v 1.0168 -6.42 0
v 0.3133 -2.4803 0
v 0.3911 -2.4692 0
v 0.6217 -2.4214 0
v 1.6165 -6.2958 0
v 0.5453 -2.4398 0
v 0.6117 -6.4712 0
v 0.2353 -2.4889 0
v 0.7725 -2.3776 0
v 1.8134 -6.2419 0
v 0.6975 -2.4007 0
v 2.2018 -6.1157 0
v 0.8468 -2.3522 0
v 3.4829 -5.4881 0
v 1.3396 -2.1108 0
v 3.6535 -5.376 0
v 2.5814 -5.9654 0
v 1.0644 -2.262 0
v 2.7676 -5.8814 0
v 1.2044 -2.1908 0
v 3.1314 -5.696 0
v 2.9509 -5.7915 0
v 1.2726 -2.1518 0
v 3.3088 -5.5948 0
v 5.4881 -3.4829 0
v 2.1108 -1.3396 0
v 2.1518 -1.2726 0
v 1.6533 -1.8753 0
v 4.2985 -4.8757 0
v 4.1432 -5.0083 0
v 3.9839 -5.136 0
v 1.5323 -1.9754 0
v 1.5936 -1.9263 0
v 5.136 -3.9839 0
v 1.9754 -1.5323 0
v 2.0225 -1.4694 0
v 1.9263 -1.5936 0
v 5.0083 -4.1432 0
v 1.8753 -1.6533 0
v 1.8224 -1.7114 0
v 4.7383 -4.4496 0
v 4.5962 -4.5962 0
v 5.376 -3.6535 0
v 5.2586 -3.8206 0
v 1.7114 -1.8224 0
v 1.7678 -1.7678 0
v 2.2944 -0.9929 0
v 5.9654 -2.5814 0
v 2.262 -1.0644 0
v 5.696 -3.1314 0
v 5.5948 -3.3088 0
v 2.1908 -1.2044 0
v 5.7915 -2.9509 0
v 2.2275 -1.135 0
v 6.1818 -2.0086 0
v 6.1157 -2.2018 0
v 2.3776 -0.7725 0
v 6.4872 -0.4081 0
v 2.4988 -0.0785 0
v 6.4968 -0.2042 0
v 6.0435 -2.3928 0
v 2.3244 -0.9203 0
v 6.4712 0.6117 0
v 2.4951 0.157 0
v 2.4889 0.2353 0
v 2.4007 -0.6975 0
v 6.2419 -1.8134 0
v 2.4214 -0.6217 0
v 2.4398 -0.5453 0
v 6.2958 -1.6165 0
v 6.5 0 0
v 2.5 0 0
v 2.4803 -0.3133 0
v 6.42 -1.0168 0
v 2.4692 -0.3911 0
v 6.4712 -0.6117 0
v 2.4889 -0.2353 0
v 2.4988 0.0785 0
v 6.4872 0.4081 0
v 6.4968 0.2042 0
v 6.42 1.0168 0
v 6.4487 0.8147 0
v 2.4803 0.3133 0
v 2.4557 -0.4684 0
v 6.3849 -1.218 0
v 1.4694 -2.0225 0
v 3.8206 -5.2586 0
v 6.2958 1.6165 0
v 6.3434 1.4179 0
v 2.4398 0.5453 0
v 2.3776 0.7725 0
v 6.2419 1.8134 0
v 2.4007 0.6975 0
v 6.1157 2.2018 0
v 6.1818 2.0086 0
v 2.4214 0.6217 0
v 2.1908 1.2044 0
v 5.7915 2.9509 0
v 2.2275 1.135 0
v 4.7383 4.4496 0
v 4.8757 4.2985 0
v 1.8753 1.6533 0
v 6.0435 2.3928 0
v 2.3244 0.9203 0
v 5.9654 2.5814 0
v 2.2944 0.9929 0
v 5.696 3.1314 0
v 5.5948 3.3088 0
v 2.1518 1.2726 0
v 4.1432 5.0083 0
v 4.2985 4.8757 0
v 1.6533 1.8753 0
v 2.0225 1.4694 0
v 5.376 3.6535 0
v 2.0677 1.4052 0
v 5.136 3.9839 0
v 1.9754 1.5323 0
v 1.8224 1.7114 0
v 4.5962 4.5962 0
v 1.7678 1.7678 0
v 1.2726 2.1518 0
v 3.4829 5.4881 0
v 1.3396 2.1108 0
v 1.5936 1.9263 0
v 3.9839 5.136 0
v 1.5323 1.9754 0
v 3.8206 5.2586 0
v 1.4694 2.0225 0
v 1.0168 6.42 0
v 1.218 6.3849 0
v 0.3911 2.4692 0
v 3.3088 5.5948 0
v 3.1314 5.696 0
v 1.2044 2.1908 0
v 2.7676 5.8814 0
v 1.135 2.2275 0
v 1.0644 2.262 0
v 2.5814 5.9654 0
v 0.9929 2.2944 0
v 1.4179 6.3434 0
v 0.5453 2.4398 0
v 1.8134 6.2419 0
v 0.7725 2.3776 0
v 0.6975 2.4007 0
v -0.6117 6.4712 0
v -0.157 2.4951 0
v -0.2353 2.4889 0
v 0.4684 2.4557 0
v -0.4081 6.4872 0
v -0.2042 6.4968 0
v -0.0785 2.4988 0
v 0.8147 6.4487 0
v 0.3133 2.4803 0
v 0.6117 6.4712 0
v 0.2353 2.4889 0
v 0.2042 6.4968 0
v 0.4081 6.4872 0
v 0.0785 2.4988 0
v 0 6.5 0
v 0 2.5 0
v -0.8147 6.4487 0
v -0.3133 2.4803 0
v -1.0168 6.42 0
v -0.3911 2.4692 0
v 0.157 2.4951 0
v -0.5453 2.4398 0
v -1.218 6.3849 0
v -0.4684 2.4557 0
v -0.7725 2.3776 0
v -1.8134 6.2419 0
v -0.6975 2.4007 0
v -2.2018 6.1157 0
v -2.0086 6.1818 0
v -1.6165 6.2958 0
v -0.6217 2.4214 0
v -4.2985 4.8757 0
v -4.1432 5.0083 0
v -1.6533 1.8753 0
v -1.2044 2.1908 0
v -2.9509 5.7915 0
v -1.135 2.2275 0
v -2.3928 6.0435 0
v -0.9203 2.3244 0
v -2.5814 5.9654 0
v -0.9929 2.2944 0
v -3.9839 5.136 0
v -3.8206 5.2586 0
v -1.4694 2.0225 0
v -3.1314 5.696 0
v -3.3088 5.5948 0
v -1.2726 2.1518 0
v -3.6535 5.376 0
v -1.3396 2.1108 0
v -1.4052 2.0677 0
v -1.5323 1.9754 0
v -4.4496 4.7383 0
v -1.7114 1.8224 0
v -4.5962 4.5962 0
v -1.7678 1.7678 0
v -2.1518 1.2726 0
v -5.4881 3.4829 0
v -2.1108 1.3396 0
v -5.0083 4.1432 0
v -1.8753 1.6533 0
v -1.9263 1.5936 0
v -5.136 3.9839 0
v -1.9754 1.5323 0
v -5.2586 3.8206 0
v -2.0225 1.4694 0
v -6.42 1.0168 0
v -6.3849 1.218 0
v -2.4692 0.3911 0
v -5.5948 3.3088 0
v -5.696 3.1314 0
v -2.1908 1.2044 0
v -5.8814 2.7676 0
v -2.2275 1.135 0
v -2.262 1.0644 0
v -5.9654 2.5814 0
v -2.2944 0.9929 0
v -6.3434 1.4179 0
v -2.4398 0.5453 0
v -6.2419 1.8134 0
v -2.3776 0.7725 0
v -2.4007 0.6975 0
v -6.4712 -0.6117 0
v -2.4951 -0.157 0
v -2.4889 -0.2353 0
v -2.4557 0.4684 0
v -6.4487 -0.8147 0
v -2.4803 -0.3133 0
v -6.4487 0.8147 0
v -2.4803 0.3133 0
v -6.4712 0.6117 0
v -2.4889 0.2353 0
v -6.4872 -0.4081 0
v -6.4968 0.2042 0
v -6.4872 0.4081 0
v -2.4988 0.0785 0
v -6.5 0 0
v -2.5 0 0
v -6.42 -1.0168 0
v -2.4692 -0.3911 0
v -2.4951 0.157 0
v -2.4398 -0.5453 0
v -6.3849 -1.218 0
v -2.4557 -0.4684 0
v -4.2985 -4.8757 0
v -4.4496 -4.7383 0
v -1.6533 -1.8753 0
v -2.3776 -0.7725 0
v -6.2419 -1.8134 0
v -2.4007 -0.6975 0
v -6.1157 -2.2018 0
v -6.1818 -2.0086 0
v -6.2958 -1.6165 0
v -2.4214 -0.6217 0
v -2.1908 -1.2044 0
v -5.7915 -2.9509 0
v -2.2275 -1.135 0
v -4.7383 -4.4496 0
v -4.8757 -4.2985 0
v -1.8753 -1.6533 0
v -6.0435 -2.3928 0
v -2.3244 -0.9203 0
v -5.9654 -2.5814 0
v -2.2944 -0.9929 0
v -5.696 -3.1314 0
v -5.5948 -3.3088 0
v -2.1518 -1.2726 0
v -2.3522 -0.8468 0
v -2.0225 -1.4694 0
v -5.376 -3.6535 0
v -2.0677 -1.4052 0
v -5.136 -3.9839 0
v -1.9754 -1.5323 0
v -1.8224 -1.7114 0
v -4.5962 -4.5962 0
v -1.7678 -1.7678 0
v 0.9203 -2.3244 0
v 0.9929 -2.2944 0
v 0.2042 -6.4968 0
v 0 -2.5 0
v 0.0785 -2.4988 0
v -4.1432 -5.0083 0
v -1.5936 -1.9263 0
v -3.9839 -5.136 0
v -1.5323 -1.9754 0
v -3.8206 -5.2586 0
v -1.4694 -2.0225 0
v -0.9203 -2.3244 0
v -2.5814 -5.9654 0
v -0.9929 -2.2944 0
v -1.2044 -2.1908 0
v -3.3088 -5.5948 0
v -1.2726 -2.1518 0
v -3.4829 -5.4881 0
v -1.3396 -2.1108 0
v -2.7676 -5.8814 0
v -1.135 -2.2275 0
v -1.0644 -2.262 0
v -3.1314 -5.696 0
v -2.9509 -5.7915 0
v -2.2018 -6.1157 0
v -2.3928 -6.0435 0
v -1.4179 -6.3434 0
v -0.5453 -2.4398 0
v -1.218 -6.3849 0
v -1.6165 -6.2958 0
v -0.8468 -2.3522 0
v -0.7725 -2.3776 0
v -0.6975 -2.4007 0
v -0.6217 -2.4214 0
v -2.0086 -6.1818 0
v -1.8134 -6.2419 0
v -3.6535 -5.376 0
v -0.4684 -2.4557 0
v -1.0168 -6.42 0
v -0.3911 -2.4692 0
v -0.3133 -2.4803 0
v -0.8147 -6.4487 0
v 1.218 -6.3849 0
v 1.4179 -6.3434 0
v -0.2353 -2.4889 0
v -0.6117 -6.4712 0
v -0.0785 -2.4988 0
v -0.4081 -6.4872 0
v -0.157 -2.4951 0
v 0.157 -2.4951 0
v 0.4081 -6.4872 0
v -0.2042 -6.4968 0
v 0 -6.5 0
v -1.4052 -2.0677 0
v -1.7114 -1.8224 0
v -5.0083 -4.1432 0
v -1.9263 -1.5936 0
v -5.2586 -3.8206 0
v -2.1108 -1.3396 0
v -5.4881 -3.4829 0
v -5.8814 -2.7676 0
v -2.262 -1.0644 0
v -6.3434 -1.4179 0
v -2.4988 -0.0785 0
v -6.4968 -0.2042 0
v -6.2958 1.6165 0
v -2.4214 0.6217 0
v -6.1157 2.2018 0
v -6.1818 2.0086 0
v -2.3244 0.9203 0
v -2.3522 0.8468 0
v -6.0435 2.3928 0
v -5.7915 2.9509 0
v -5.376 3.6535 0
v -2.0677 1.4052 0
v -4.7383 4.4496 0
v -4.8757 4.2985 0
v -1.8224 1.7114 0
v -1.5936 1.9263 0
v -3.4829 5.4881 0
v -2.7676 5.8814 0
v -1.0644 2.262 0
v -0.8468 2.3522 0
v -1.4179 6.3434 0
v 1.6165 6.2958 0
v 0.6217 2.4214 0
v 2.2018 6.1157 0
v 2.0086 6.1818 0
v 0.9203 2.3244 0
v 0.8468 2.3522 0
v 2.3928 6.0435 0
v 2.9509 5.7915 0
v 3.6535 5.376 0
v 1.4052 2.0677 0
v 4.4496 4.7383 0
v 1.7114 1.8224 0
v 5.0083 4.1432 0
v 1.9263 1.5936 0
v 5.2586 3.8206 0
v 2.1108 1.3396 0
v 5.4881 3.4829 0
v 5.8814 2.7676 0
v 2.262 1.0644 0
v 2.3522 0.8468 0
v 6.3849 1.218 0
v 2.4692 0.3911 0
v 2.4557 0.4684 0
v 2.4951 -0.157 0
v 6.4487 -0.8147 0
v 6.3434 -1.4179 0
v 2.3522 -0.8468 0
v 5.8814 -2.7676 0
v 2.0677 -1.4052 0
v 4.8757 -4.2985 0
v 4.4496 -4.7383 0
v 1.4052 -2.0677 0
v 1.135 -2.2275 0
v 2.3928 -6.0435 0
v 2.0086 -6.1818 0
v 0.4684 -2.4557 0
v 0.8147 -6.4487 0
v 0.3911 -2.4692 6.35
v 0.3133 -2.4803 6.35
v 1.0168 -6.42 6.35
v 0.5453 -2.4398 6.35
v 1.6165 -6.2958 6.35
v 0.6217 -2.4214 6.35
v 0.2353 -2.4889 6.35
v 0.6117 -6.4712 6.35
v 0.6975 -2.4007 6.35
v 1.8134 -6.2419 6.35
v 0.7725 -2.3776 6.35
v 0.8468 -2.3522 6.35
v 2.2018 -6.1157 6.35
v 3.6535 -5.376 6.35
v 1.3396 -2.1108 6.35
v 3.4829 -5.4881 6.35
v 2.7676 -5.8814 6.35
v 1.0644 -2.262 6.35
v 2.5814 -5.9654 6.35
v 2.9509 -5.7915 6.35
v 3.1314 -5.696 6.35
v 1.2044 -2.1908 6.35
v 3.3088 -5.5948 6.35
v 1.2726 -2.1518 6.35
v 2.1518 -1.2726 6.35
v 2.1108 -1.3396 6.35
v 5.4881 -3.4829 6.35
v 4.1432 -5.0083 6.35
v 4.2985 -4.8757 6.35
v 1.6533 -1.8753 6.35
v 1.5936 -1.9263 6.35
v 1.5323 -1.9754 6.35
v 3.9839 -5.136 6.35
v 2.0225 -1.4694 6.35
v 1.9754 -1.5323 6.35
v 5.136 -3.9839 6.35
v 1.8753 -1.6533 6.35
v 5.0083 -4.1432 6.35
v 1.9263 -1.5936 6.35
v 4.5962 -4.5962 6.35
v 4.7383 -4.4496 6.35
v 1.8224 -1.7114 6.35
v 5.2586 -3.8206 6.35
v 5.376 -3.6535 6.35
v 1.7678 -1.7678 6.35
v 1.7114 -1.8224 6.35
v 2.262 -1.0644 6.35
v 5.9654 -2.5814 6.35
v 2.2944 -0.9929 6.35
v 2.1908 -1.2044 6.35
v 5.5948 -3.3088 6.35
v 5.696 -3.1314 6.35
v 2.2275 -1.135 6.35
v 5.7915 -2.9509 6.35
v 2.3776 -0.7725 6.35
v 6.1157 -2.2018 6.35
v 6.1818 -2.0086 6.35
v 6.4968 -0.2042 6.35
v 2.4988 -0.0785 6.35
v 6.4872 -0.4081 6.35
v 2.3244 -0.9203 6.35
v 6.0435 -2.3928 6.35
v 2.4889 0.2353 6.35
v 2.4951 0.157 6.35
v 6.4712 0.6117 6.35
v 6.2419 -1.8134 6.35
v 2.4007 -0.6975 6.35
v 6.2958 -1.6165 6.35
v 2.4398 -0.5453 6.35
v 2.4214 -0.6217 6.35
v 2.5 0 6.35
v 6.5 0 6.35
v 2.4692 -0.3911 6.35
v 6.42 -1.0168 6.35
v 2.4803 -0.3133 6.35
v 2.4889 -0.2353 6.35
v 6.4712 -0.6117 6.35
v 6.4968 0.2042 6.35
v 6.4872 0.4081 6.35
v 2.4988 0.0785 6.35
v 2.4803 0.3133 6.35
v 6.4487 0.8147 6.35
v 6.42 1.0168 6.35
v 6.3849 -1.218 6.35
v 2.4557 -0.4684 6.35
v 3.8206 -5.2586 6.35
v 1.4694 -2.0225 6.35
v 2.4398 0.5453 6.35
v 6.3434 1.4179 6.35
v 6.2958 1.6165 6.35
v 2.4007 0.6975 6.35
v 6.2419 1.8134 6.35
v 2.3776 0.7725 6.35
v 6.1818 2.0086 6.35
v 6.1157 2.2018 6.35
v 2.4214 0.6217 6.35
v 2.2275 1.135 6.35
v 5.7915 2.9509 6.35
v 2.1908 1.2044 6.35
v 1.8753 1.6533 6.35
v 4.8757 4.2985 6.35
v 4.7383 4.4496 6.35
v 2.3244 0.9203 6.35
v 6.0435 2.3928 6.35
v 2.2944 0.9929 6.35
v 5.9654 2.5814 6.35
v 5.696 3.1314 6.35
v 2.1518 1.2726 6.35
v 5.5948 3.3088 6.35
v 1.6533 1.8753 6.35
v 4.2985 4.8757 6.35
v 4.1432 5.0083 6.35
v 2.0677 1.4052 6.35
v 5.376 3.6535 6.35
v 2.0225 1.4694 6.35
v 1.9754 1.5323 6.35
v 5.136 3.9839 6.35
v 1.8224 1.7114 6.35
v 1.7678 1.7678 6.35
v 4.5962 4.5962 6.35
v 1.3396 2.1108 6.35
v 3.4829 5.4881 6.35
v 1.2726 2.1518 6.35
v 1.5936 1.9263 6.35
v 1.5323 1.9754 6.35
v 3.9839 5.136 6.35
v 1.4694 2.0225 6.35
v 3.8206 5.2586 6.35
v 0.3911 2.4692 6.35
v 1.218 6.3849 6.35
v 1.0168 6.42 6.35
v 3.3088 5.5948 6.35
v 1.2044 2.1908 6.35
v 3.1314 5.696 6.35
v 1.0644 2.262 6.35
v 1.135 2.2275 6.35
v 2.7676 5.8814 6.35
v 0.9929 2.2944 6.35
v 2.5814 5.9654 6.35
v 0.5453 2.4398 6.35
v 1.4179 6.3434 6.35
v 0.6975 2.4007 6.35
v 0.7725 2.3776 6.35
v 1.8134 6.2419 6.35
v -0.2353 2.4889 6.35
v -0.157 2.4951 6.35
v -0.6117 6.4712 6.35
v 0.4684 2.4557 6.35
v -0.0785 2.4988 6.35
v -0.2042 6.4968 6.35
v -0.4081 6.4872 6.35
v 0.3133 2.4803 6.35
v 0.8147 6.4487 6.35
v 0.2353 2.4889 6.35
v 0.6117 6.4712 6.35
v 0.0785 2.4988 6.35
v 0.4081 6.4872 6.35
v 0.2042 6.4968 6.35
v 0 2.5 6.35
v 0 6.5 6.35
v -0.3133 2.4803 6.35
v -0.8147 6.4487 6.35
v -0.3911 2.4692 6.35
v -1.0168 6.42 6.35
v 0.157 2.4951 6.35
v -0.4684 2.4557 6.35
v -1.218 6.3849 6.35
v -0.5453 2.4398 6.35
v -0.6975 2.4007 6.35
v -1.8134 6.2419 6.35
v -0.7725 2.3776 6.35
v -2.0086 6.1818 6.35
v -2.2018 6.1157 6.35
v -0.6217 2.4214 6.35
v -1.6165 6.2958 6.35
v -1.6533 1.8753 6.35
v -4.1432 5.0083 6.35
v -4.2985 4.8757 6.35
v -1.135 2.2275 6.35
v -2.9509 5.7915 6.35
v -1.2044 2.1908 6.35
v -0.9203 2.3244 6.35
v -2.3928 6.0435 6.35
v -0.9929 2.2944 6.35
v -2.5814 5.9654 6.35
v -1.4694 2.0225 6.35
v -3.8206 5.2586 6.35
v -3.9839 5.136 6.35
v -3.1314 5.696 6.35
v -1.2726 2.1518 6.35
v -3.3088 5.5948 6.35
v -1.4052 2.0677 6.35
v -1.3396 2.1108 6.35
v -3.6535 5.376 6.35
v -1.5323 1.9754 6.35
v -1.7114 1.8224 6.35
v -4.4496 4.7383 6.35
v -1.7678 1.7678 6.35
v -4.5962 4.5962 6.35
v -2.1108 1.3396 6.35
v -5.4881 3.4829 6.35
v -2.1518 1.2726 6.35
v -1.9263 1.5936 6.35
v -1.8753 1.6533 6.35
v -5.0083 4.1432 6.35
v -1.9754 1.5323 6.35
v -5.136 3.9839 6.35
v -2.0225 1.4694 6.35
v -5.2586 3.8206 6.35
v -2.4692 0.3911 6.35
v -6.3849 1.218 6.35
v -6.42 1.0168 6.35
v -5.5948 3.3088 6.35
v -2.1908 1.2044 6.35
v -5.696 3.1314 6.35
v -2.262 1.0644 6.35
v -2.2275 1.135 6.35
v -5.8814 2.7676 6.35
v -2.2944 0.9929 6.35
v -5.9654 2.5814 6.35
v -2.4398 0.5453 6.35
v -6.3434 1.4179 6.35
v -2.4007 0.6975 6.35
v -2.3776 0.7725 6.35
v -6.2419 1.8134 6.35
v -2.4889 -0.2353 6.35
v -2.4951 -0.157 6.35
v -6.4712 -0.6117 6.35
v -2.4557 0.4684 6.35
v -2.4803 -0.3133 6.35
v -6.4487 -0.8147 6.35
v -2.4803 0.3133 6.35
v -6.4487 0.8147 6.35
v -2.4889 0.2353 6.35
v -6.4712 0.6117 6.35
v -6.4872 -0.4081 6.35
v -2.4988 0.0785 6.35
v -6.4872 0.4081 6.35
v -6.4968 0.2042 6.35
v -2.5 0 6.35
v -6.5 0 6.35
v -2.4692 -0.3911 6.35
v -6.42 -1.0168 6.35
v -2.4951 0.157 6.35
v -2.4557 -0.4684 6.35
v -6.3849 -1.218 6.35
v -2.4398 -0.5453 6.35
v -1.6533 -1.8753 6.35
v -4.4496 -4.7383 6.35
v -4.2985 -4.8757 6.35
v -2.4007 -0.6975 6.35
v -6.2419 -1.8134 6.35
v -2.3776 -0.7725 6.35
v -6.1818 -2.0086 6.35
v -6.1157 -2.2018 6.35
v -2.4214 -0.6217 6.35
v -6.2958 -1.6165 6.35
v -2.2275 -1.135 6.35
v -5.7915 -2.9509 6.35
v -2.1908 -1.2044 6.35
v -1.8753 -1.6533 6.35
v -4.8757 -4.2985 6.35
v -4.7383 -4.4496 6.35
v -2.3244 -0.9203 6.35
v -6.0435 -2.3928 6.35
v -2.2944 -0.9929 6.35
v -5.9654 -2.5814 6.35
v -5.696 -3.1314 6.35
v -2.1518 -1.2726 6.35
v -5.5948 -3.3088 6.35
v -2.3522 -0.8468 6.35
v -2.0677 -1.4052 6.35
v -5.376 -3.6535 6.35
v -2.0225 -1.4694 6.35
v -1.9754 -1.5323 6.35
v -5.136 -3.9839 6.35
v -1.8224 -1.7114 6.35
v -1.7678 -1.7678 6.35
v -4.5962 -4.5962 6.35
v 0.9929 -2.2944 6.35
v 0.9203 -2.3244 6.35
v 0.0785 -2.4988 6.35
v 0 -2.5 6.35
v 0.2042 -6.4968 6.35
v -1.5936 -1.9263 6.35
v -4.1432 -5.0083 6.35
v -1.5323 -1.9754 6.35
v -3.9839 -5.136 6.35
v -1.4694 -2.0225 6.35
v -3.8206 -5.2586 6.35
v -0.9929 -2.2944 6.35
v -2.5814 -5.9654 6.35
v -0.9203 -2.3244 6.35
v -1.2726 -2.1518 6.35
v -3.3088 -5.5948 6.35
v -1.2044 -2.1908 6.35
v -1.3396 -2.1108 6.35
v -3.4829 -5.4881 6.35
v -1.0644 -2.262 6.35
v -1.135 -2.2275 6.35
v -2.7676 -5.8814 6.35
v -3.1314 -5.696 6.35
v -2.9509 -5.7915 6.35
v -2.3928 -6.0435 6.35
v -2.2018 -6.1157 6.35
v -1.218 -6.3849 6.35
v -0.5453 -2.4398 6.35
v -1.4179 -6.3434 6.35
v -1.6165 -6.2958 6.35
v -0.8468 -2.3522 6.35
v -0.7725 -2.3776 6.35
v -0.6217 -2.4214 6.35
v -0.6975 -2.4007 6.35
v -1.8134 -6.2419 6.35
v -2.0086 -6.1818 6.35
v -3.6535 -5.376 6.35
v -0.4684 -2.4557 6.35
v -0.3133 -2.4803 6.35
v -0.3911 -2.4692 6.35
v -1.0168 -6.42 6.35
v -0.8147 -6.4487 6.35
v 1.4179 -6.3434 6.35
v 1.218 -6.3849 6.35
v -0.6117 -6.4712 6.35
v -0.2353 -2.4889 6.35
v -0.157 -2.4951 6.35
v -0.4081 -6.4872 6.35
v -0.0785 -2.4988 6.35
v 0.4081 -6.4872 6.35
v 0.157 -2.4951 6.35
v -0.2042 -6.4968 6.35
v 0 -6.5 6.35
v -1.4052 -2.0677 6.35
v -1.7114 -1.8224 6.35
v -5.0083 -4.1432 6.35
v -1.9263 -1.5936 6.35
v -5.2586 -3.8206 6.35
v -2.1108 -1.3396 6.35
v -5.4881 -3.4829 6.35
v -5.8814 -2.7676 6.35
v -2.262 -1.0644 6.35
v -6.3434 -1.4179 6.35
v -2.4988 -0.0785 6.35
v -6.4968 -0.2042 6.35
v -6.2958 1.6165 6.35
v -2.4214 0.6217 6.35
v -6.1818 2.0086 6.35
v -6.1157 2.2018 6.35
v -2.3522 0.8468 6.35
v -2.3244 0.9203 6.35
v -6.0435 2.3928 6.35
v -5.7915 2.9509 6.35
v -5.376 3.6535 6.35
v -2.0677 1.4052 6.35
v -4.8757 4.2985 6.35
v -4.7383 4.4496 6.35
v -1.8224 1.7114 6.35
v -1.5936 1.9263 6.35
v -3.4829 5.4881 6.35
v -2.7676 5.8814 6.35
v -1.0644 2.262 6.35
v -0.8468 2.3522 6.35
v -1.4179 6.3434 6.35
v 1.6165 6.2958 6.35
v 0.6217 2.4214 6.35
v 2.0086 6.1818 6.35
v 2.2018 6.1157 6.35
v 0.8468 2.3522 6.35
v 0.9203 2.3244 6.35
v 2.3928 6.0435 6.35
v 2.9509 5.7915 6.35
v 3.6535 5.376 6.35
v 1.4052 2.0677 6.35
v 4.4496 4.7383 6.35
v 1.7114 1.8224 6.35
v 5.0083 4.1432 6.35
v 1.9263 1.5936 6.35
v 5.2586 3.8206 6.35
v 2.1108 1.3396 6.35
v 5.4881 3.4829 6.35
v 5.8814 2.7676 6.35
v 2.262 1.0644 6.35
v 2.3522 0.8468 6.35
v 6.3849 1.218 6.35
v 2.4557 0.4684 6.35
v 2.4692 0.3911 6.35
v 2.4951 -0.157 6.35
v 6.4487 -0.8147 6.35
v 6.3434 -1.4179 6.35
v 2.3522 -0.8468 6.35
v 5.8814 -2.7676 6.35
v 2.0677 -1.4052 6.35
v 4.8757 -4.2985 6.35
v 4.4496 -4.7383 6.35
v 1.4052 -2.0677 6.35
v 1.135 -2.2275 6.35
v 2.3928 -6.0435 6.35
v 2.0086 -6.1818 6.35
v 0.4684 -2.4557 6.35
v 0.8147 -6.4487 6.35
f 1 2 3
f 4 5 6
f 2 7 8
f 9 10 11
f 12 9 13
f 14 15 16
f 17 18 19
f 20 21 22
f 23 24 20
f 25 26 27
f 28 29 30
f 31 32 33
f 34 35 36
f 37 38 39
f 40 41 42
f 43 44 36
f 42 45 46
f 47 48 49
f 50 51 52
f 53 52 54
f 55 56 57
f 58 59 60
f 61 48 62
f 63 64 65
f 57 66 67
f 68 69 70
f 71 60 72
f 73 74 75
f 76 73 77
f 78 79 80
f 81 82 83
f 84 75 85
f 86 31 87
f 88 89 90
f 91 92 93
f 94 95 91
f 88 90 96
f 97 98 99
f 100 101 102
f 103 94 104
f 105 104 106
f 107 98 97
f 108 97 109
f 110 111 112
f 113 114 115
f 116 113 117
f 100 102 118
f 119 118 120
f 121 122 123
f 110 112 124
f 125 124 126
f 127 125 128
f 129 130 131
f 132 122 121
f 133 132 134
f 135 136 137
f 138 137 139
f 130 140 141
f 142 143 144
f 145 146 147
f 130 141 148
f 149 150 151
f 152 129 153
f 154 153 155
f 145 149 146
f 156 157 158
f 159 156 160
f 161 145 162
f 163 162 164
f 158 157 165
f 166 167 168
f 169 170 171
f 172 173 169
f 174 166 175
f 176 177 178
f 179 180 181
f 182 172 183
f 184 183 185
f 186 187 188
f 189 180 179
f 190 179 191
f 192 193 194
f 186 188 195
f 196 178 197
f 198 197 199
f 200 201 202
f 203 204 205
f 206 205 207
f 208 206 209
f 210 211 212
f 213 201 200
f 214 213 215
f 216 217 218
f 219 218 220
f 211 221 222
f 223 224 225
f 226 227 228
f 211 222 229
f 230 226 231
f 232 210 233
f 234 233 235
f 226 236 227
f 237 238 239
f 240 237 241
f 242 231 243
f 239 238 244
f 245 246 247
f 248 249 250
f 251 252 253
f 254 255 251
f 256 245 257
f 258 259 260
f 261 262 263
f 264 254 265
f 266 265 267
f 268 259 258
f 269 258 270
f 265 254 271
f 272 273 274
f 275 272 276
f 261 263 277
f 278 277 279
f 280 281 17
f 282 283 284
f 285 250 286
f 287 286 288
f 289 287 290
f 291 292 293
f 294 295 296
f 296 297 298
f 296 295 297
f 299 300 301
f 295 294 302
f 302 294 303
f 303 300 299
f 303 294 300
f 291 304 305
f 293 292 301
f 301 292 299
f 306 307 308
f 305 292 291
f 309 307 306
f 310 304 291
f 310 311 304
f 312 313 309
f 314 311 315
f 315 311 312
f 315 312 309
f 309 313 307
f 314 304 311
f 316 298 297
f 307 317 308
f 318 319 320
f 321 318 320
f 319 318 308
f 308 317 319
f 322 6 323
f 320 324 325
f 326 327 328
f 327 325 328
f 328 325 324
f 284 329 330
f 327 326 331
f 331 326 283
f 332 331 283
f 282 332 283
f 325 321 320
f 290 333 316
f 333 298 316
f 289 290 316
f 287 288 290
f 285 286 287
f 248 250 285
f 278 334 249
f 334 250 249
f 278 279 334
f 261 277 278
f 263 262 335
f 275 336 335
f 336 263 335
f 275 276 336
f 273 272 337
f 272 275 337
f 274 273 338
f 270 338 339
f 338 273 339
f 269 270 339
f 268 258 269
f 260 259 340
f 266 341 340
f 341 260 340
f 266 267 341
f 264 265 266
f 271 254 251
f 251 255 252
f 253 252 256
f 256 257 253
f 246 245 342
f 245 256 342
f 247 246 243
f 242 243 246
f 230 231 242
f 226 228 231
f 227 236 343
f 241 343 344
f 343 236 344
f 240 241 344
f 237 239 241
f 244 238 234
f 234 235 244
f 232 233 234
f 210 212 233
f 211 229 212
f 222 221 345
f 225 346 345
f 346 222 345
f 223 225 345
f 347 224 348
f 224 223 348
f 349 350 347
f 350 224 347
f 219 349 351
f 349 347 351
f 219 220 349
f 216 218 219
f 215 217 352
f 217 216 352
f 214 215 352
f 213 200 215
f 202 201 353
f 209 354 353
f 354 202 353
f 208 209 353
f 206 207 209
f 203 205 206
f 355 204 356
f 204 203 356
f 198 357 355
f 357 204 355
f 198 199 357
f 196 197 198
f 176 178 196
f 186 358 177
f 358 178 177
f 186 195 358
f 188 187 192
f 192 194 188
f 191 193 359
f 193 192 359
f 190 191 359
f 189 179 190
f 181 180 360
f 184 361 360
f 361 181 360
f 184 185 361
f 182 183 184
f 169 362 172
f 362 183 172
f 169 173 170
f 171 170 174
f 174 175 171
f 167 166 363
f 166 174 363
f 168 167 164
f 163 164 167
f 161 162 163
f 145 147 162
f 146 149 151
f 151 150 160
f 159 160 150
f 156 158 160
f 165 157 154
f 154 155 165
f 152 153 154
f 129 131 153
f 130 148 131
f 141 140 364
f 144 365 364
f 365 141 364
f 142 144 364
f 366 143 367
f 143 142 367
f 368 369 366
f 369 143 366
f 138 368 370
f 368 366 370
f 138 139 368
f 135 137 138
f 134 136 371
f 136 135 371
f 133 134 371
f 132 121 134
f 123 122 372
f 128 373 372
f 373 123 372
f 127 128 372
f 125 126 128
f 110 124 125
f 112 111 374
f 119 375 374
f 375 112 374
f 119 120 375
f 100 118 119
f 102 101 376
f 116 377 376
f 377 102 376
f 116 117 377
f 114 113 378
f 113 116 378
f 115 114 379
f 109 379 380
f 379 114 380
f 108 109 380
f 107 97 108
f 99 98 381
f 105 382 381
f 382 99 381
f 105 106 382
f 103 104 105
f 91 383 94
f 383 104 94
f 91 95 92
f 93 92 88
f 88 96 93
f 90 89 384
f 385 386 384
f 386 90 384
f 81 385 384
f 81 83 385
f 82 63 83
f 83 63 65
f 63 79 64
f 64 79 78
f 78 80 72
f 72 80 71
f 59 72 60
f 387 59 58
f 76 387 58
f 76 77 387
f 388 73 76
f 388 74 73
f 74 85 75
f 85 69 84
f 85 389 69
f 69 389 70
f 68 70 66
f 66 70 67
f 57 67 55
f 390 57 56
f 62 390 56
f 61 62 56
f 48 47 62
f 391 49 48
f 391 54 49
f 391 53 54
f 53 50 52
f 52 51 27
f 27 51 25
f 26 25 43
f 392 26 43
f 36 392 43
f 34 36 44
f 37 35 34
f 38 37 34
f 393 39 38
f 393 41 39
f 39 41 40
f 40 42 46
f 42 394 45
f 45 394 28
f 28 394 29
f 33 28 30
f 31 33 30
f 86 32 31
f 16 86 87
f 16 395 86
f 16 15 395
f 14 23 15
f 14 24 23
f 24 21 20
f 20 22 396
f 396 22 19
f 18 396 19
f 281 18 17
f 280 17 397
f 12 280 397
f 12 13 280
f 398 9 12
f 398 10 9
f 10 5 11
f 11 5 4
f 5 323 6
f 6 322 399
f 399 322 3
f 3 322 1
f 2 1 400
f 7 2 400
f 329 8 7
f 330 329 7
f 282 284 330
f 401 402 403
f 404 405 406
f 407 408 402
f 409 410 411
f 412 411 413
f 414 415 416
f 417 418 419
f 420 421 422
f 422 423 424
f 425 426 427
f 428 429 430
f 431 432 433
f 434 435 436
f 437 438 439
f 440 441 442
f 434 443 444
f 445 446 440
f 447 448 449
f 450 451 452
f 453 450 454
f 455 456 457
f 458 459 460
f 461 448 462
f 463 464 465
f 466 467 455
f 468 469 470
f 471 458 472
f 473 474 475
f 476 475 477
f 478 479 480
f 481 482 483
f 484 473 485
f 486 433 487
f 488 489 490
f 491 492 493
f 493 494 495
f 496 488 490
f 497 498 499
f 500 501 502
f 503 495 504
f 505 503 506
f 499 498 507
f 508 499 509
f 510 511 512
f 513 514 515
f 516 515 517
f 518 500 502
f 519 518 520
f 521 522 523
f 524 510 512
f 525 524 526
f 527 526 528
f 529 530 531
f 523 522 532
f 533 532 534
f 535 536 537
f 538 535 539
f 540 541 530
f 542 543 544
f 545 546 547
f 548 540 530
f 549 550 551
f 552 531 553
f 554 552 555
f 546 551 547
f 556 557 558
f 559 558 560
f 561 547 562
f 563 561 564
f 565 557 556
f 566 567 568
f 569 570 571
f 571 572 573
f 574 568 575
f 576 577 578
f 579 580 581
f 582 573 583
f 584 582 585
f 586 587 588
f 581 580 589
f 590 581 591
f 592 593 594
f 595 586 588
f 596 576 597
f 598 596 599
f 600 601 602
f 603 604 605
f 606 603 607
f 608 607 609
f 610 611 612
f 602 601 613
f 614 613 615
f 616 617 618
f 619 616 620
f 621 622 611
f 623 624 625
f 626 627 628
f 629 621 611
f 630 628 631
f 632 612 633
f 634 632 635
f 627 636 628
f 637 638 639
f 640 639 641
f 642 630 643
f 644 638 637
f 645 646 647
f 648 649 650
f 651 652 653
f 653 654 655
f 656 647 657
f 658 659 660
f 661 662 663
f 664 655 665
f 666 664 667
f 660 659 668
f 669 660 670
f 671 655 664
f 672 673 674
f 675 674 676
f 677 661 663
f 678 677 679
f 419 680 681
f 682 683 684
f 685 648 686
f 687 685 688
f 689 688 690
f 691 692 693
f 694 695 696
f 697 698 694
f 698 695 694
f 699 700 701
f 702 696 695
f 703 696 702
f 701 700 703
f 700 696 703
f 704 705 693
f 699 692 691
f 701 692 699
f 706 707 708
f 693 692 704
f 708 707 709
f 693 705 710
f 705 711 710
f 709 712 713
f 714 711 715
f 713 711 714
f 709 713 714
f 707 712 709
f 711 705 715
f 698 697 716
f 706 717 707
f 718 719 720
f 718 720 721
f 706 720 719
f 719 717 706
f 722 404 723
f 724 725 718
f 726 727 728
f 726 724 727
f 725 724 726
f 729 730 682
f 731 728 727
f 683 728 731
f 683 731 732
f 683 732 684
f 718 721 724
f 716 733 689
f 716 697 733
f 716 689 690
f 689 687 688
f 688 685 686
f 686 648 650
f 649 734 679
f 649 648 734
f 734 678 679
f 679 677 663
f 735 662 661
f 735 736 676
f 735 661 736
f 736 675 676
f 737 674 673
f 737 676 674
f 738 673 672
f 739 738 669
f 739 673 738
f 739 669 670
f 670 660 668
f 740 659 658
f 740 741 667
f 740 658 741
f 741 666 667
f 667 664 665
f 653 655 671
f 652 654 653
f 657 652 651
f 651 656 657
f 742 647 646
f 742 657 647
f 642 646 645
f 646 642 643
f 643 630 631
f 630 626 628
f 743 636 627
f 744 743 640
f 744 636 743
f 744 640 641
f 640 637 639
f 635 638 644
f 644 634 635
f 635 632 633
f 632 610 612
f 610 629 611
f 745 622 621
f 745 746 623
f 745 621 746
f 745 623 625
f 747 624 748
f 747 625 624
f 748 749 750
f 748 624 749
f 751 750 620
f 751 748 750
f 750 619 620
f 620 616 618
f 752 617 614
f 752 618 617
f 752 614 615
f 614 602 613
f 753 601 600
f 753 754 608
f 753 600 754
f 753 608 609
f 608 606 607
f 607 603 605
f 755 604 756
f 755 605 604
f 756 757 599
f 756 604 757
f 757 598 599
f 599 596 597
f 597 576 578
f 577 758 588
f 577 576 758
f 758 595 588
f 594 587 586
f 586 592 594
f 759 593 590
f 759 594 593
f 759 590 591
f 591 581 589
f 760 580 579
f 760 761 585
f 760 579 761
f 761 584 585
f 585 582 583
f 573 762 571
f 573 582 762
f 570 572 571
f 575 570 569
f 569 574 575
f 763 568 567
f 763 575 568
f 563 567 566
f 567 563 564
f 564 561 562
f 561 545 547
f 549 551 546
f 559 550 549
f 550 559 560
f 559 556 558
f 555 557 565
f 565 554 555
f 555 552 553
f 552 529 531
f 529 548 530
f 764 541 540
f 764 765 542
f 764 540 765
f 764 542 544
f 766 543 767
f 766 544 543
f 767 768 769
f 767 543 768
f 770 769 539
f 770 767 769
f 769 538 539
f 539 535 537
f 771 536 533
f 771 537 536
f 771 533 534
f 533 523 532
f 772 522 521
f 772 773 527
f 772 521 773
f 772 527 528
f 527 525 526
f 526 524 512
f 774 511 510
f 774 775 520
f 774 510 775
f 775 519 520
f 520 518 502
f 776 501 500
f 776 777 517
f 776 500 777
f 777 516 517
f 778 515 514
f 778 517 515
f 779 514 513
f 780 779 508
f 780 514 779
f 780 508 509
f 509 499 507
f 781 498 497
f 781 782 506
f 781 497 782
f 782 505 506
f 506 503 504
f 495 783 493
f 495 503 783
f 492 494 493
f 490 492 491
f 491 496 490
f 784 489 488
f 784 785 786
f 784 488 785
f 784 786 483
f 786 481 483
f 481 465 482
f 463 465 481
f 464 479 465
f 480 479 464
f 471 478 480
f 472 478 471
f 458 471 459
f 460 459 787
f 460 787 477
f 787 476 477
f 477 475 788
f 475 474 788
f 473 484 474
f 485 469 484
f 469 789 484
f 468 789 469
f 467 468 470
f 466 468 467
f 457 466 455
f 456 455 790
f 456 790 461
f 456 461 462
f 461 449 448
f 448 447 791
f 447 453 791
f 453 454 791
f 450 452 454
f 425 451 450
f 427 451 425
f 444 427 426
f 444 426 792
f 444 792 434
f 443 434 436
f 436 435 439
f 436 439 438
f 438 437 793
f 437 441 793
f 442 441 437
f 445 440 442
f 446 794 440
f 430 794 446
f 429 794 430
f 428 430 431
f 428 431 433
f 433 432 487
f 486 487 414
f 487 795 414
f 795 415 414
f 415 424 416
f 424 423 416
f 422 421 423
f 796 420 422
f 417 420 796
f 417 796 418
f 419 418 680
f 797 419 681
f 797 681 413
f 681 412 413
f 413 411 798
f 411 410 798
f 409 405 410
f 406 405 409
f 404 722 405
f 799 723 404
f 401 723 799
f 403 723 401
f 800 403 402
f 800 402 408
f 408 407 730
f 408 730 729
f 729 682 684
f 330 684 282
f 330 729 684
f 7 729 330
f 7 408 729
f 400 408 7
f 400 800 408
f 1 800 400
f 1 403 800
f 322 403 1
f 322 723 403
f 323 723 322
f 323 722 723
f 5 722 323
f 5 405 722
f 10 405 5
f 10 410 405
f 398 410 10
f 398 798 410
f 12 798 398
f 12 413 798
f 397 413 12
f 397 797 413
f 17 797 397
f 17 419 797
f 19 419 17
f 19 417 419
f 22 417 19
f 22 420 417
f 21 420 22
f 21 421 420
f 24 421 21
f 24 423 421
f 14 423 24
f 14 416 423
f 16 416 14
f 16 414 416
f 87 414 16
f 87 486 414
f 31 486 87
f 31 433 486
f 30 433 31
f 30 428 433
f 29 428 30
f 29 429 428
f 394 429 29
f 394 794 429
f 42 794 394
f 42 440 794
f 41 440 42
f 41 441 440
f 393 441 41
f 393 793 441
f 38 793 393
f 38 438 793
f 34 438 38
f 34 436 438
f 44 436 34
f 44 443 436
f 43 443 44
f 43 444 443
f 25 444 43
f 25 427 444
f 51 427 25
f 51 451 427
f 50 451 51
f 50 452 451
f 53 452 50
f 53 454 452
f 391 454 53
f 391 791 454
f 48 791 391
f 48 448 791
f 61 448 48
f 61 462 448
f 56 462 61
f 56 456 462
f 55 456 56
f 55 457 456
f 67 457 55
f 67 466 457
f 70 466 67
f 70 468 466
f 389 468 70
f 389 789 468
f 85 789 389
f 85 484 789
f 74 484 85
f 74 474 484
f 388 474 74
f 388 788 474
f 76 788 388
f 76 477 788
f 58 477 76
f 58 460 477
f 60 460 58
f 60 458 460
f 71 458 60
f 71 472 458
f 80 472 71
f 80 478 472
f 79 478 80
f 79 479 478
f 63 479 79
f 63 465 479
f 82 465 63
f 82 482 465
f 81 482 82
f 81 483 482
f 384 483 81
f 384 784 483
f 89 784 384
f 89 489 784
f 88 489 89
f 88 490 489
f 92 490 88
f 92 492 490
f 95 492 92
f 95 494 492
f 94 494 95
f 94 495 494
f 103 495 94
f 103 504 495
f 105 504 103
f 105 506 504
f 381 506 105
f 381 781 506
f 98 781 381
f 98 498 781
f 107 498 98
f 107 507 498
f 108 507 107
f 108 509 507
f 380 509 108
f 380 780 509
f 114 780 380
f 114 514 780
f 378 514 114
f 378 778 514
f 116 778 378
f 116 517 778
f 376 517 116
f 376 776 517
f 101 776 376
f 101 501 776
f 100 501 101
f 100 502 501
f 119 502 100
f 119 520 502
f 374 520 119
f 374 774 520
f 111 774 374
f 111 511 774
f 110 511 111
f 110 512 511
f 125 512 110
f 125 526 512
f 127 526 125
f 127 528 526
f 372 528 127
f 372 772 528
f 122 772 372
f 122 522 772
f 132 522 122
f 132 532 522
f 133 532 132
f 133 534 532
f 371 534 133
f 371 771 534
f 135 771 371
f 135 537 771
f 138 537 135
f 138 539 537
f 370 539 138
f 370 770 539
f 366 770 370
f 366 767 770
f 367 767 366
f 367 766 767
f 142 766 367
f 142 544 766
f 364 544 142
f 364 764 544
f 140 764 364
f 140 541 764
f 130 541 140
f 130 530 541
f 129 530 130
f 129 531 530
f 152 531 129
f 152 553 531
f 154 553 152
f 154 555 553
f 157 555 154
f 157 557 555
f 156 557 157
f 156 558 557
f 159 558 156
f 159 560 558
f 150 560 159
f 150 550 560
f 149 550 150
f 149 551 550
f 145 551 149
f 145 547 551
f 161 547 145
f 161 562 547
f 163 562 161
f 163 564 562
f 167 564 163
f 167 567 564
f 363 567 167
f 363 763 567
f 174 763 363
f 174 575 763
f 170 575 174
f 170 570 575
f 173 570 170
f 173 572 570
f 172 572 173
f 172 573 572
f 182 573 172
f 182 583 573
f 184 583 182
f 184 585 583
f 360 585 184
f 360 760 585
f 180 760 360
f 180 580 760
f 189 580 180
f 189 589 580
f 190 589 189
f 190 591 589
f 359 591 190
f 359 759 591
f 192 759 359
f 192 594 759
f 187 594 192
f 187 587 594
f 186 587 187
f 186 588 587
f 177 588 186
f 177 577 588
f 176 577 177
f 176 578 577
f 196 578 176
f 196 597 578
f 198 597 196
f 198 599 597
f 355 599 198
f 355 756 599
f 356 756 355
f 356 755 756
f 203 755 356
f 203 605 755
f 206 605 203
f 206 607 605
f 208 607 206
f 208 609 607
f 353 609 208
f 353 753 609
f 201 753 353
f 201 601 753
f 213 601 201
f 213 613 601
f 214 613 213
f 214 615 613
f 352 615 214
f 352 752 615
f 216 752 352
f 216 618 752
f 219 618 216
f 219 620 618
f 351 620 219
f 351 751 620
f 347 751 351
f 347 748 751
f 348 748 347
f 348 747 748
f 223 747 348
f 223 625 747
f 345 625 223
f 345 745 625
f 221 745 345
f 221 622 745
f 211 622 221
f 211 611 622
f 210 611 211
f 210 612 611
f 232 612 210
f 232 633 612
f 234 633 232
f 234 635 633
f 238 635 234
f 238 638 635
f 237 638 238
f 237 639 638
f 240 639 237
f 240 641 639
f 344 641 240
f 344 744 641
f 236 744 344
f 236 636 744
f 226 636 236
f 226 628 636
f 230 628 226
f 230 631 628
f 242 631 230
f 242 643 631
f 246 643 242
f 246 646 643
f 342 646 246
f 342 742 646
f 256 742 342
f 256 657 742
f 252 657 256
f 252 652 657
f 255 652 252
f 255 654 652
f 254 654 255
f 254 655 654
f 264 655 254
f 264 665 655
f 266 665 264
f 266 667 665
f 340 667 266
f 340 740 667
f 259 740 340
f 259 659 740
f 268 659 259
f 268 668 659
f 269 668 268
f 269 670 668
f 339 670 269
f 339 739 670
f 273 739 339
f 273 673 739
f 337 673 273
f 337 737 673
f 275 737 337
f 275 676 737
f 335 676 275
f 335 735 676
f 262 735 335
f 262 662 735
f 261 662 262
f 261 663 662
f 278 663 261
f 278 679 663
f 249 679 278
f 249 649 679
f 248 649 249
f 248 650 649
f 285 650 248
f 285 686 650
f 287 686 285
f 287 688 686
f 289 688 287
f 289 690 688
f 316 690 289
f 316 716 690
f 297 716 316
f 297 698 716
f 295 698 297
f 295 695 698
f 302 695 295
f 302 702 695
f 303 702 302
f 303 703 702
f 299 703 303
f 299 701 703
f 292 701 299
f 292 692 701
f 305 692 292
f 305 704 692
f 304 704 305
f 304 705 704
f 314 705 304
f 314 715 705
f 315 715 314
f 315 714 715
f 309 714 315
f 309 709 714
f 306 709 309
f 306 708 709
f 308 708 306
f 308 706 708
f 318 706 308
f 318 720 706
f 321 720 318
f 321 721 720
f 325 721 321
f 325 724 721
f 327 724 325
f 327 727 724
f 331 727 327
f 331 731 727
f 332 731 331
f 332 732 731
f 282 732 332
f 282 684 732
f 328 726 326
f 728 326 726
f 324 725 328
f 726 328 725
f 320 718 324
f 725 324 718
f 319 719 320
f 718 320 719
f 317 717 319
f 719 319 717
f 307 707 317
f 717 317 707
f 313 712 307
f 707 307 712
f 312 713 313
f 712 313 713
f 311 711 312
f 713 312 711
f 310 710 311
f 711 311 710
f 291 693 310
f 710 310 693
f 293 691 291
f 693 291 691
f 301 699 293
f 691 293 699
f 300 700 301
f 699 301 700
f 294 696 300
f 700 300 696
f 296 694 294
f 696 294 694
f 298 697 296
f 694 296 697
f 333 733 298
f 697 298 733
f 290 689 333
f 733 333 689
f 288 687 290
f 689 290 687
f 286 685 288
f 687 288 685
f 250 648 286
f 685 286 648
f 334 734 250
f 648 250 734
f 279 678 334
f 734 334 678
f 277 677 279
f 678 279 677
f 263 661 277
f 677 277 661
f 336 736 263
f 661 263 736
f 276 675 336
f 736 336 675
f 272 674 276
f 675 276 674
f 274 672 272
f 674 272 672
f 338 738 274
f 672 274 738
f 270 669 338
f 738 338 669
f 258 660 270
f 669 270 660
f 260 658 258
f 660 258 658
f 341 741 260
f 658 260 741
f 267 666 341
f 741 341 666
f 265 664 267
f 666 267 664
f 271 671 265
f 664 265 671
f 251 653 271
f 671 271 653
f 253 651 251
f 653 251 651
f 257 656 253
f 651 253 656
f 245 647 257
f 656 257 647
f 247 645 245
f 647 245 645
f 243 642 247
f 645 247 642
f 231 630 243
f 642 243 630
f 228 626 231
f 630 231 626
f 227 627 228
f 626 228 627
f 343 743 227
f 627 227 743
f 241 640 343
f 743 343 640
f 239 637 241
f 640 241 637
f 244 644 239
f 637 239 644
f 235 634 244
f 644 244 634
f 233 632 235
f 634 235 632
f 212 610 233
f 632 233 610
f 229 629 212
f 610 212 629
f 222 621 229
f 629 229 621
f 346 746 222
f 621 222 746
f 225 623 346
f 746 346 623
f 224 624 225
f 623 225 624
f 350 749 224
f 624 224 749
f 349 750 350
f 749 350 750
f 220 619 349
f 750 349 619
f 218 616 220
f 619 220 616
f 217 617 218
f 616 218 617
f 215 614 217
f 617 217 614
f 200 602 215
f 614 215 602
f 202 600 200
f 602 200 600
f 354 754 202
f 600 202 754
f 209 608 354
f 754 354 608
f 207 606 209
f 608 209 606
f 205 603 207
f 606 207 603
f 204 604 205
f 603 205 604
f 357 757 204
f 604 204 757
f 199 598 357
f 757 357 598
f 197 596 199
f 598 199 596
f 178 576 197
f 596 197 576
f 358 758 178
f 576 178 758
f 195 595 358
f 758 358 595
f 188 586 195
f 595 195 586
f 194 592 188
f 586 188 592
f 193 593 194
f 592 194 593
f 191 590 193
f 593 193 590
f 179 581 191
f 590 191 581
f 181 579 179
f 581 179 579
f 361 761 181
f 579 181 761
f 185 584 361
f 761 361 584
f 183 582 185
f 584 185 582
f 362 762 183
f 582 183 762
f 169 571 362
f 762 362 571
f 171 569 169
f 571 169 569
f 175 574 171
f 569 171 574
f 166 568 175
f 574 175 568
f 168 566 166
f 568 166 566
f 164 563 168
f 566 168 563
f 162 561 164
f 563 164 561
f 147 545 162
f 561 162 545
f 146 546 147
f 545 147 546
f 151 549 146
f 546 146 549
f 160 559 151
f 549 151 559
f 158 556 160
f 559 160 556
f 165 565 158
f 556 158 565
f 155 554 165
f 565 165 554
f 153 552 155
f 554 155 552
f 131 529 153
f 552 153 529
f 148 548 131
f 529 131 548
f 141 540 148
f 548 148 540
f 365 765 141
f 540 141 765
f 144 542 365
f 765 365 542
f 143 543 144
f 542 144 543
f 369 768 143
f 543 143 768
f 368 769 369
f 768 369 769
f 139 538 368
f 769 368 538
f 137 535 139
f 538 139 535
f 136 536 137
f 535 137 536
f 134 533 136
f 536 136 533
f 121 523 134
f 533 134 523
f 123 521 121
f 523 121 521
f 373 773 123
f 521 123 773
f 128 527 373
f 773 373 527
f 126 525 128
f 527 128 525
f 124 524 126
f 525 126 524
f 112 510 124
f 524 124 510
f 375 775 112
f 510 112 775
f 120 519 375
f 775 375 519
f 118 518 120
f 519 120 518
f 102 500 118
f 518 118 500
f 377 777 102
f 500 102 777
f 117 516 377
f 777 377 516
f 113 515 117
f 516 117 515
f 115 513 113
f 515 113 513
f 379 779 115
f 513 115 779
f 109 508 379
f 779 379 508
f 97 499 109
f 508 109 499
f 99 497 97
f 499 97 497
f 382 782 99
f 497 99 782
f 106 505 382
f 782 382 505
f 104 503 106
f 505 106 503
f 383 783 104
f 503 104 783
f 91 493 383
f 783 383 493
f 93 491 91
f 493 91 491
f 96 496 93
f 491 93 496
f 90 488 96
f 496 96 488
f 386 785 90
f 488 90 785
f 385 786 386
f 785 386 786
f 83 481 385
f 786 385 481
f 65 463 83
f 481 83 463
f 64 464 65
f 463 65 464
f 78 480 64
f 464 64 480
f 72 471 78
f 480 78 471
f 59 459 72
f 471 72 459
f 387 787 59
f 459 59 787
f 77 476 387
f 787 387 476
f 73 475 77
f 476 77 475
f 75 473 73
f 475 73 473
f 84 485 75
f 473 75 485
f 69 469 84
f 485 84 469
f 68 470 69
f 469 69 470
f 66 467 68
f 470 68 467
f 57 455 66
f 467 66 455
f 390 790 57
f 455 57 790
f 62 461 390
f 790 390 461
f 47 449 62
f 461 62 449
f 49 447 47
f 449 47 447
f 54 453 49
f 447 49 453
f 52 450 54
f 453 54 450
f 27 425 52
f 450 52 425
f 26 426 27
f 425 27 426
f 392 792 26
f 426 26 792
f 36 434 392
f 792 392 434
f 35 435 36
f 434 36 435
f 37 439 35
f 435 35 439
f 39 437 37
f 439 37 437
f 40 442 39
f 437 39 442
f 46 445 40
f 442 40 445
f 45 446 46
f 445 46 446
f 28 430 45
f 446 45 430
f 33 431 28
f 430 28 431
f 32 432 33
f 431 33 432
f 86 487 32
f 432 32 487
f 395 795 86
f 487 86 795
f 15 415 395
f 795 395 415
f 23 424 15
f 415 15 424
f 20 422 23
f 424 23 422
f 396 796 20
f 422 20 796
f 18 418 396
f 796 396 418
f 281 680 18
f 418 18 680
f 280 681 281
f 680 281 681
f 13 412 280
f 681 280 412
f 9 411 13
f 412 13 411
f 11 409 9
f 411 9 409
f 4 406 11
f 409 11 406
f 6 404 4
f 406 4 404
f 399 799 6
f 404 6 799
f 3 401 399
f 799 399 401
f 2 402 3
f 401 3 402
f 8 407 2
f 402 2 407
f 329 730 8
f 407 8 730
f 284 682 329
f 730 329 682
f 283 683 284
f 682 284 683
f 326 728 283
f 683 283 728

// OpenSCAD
$fn = 200;

linear_extrude(height = 6.35) {
    difference() {
        circle(d = 5 + 2 * 4);
        circle(d = 5);
    }
}
